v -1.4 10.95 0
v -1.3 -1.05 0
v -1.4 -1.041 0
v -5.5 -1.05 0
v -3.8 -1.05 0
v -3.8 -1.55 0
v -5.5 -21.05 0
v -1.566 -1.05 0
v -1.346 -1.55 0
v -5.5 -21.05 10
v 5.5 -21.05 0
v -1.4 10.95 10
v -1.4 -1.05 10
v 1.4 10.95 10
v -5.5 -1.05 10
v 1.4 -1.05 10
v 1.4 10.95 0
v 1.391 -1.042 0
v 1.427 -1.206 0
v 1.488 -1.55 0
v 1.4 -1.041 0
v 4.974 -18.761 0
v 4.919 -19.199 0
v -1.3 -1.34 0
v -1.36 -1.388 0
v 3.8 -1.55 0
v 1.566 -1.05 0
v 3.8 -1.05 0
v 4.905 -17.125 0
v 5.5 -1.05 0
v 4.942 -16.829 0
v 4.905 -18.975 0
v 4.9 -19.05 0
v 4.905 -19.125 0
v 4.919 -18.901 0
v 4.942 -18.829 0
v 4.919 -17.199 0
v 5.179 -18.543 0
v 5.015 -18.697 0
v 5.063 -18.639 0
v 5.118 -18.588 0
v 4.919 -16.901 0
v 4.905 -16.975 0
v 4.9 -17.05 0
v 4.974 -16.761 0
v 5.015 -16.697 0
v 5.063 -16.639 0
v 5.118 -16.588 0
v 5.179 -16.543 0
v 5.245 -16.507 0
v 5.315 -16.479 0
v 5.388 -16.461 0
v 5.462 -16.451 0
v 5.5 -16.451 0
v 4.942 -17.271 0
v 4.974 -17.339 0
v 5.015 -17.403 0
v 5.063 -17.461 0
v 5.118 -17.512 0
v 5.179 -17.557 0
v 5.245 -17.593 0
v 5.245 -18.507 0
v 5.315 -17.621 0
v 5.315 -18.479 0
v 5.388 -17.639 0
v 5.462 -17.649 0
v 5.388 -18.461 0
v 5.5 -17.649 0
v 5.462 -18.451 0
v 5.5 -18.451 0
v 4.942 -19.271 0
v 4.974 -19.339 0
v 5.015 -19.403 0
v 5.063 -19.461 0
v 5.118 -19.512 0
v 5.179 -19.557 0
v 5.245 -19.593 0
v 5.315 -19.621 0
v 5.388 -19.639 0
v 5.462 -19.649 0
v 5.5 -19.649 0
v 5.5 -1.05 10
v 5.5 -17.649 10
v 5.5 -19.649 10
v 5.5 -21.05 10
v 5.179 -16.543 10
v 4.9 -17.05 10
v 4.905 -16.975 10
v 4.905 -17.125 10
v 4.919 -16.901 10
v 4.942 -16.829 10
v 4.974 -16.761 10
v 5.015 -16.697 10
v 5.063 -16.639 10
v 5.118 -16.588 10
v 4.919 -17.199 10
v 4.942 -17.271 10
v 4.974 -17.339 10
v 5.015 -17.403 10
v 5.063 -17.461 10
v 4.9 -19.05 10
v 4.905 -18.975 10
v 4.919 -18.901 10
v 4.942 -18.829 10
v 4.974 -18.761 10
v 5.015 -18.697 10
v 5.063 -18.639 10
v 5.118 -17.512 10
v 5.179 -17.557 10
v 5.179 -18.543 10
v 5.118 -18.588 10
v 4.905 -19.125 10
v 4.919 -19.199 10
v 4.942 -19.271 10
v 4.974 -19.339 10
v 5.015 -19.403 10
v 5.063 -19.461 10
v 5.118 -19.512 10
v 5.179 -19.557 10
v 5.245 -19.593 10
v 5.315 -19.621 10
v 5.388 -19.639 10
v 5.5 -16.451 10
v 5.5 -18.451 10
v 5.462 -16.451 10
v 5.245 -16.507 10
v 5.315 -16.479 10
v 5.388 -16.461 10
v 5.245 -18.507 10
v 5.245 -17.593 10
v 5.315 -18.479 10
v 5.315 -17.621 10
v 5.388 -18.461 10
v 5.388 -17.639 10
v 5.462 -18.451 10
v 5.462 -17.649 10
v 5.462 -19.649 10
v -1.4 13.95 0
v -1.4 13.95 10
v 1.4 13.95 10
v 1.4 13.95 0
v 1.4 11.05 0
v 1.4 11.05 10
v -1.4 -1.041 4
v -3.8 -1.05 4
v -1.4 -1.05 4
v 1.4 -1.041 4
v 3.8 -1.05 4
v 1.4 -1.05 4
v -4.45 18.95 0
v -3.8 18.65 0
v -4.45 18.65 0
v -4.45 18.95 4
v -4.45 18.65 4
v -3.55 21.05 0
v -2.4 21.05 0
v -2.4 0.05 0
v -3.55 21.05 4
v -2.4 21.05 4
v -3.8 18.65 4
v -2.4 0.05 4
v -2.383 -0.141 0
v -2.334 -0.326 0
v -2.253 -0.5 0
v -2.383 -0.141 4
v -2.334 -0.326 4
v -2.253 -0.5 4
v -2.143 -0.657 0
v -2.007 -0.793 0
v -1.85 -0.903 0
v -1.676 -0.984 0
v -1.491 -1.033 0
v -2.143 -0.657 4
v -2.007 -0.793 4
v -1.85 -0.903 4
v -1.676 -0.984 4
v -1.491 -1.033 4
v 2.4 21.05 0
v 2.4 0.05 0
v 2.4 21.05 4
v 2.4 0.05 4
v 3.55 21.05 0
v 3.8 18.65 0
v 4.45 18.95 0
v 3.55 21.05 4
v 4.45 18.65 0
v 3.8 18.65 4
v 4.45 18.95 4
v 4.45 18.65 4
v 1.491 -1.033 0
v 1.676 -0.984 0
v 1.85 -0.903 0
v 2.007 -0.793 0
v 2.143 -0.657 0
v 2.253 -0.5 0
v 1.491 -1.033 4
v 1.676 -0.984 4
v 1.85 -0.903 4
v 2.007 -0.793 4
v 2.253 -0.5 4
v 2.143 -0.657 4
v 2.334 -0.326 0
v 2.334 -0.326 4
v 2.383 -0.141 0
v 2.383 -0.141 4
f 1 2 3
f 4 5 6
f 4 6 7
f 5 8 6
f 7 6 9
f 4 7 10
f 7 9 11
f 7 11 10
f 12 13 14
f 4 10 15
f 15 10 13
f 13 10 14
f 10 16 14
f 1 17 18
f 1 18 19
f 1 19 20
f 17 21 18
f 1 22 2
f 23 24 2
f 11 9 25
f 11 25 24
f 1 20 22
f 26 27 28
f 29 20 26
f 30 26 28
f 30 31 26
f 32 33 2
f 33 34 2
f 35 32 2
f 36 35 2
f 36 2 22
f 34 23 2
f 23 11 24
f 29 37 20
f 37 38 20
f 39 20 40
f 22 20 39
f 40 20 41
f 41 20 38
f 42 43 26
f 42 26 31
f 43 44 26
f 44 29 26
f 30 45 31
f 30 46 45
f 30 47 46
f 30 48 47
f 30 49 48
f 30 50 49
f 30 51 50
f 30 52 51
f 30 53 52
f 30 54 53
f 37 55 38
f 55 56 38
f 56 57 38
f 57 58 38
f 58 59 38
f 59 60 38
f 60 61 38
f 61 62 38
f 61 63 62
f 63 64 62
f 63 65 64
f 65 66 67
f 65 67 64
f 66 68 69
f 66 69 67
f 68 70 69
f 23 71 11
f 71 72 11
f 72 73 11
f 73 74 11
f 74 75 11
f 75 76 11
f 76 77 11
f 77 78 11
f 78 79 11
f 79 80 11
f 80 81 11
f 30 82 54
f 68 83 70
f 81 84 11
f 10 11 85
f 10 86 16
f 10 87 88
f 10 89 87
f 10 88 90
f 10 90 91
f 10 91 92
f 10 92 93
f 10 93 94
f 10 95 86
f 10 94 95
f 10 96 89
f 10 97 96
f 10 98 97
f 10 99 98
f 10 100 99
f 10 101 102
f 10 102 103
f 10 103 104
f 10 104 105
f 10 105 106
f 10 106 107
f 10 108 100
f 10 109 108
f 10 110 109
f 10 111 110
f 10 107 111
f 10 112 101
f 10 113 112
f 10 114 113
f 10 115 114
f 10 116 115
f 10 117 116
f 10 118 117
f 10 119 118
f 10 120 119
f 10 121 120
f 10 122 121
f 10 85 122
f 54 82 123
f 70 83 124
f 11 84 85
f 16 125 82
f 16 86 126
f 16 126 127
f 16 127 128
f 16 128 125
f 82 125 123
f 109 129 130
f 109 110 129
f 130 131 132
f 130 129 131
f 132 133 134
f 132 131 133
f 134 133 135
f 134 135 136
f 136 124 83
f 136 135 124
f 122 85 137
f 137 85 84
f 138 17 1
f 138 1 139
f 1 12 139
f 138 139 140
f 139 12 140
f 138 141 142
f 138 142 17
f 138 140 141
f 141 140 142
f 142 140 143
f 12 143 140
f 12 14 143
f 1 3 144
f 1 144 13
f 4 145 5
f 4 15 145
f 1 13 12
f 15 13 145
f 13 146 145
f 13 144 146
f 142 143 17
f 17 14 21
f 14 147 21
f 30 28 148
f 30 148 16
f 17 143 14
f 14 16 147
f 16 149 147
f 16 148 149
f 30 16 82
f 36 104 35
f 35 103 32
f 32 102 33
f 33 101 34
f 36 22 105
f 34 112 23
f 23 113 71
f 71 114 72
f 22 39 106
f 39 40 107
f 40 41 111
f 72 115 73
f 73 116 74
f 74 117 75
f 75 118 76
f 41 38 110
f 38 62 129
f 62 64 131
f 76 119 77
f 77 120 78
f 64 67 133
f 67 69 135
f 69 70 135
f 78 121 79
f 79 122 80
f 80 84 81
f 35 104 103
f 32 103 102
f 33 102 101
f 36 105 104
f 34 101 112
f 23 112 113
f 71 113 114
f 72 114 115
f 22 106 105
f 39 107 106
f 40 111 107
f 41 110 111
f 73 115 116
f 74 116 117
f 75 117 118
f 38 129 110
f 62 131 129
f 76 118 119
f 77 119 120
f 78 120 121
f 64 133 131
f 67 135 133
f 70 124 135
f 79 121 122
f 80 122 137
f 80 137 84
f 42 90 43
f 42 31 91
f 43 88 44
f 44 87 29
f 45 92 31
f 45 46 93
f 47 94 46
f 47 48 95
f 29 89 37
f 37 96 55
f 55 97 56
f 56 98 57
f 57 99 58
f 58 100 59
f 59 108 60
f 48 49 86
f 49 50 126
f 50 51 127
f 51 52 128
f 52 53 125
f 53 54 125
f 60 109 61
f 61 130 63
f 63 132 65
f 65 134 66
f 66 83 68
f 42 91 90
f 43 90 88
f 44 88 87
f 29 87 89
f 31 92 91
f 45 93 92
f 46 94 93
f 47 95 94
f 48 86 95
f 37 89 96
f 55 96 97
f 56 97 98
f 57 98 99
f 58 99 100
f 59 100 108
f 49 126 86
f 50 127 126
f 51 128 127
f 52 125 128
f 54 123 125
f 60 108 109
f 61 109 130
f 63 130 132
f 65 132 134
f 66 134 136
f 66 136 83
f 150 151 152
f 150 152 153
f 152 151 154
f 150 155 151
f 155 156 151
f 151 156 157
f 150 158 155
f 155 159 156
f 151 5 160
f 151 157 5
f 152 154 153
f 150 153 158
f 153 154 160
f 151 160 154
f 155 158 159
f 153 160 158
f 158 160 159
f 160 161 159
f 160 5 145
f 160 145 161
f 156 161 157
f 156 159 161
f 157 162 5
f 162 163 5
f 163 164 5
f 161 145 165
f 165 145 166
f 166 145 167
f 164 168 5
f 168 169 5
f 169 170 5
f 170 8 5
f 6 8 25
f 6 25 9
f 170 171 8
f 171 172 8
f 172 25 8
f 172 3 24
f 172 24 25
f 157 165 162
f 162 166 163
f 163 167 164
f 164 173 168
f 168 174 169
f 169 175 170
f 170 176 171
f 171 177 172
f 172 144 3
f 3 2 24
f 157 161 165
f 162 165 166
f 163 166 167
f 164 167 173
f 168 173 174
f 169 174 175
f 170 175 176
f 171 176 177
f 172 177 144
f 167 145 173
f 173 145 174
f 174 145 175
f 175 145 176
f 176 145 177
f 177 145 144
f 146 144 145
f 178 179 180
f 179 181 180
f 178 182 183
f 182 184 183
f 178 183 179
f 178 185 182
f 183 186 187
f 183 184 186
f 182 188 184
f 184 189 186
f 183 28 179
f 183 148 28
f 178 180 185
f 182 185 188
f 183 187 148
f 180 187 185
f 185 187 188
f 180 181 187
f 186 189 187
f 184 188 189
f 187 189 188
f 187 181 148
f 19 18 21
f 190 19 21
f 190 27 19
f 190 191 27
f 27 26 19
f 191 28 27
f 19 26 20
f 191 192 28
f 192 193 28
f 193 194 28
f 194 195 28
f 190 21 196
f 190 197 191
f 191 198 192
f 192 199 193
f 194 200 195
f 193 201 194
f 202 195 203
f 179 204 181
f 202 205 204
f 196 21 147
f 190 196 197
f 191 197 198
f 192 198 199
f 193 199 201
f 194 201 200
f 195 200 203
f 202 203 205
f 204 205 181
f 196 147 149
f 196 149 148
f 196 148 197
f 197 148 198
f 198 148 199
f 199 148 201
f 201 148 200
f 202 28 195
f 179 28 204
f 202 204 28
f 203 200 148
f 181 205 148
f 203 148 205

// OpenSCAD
$fn = 50;

difference() {
	union() {
		translate(v = [0, 10.95, 0]) {
			rotate(a = [90, 0, 0]) {
				union() {
					difference() {
						union() {
							translate(v = [-5.5, 0, 0]) {
								cube(size = [11.0, 10.0, 32.0]);
							}
							translate(v = [-1.4, 0, -3.0]) {
								cube(size = [2.8, 10.0, 3.1]);
							}
						}
						union() {
							translate(v = [-5.6, -0.1, -0.1]) {
								cube(size = [4.199999999999999, 10.2, 12.1]);
							}
							translate(v = [1.4, -0.1, -0.1]) {
								cube(size = [4.199999999999999, 10.2, 12.1]);
							}
							translate(v = [5.5, 10.1, 30.0]) {
								rotate(a = [90, 0, 0]) {
									cylinder(h = 10.2, r = 0.6);
								}
							}
							translate(v = [5.5, 10.1, 28.0]) {
								rotate(a = [90, 0, 0]) {
									cylinder(h = 10.2, r = 0.6);
								}
							}
						}
					}
					union() {
						translate(v = [0, 4.0, 0]) {
							rotate(a = [90, 0, 0]) {
								linear_extrude(height = 4.0) {
									polygon(points = [[-2.4, -10.1], [-3.55, -10.1], [-4.45, -8.0], [-4.45, -7.7], [-3.8, -7.7], [-3.8, 12.5], [-1.3, 12.5], [-1.3, 12.0], [-1.491013, 11.983289], [-1.676222, 11.933662], [-1.85, 11.852628], [-2.007066, 11.742649], [-2.142649, 11.607066], [-2.252628, 11.45], [-2.333662, 11.276222], [-2.383289, 11.091013], [-2.4, 10.9]]);
								}
							}
						}
						translate(v = [0, 4.0, 0]) {
							rotate(a = [90, 0, 0]) {
								linear_extrude(height = 4.0) {
									polygon(points = [[2.4, -10.1], [3.55, -10.1], [4.45, -8.0], [4.45, -7.7], [3.8, -7.7], [3.8, 12.5], [1.3, 12.5], [1.3, 12.0], [1.491013, 11.983289], [1.676222, 11.933662], [1.85, 11.852628], [2.007066, 11.742649], [2.142649, 11.607066], [2.252628, 11.45], [2.333662, 11.276222], [2.383289, 11.091013], [2.4, 10.9]]);
								}
							}
						}
					}
				}
			}
		}
	}
	union();
}
